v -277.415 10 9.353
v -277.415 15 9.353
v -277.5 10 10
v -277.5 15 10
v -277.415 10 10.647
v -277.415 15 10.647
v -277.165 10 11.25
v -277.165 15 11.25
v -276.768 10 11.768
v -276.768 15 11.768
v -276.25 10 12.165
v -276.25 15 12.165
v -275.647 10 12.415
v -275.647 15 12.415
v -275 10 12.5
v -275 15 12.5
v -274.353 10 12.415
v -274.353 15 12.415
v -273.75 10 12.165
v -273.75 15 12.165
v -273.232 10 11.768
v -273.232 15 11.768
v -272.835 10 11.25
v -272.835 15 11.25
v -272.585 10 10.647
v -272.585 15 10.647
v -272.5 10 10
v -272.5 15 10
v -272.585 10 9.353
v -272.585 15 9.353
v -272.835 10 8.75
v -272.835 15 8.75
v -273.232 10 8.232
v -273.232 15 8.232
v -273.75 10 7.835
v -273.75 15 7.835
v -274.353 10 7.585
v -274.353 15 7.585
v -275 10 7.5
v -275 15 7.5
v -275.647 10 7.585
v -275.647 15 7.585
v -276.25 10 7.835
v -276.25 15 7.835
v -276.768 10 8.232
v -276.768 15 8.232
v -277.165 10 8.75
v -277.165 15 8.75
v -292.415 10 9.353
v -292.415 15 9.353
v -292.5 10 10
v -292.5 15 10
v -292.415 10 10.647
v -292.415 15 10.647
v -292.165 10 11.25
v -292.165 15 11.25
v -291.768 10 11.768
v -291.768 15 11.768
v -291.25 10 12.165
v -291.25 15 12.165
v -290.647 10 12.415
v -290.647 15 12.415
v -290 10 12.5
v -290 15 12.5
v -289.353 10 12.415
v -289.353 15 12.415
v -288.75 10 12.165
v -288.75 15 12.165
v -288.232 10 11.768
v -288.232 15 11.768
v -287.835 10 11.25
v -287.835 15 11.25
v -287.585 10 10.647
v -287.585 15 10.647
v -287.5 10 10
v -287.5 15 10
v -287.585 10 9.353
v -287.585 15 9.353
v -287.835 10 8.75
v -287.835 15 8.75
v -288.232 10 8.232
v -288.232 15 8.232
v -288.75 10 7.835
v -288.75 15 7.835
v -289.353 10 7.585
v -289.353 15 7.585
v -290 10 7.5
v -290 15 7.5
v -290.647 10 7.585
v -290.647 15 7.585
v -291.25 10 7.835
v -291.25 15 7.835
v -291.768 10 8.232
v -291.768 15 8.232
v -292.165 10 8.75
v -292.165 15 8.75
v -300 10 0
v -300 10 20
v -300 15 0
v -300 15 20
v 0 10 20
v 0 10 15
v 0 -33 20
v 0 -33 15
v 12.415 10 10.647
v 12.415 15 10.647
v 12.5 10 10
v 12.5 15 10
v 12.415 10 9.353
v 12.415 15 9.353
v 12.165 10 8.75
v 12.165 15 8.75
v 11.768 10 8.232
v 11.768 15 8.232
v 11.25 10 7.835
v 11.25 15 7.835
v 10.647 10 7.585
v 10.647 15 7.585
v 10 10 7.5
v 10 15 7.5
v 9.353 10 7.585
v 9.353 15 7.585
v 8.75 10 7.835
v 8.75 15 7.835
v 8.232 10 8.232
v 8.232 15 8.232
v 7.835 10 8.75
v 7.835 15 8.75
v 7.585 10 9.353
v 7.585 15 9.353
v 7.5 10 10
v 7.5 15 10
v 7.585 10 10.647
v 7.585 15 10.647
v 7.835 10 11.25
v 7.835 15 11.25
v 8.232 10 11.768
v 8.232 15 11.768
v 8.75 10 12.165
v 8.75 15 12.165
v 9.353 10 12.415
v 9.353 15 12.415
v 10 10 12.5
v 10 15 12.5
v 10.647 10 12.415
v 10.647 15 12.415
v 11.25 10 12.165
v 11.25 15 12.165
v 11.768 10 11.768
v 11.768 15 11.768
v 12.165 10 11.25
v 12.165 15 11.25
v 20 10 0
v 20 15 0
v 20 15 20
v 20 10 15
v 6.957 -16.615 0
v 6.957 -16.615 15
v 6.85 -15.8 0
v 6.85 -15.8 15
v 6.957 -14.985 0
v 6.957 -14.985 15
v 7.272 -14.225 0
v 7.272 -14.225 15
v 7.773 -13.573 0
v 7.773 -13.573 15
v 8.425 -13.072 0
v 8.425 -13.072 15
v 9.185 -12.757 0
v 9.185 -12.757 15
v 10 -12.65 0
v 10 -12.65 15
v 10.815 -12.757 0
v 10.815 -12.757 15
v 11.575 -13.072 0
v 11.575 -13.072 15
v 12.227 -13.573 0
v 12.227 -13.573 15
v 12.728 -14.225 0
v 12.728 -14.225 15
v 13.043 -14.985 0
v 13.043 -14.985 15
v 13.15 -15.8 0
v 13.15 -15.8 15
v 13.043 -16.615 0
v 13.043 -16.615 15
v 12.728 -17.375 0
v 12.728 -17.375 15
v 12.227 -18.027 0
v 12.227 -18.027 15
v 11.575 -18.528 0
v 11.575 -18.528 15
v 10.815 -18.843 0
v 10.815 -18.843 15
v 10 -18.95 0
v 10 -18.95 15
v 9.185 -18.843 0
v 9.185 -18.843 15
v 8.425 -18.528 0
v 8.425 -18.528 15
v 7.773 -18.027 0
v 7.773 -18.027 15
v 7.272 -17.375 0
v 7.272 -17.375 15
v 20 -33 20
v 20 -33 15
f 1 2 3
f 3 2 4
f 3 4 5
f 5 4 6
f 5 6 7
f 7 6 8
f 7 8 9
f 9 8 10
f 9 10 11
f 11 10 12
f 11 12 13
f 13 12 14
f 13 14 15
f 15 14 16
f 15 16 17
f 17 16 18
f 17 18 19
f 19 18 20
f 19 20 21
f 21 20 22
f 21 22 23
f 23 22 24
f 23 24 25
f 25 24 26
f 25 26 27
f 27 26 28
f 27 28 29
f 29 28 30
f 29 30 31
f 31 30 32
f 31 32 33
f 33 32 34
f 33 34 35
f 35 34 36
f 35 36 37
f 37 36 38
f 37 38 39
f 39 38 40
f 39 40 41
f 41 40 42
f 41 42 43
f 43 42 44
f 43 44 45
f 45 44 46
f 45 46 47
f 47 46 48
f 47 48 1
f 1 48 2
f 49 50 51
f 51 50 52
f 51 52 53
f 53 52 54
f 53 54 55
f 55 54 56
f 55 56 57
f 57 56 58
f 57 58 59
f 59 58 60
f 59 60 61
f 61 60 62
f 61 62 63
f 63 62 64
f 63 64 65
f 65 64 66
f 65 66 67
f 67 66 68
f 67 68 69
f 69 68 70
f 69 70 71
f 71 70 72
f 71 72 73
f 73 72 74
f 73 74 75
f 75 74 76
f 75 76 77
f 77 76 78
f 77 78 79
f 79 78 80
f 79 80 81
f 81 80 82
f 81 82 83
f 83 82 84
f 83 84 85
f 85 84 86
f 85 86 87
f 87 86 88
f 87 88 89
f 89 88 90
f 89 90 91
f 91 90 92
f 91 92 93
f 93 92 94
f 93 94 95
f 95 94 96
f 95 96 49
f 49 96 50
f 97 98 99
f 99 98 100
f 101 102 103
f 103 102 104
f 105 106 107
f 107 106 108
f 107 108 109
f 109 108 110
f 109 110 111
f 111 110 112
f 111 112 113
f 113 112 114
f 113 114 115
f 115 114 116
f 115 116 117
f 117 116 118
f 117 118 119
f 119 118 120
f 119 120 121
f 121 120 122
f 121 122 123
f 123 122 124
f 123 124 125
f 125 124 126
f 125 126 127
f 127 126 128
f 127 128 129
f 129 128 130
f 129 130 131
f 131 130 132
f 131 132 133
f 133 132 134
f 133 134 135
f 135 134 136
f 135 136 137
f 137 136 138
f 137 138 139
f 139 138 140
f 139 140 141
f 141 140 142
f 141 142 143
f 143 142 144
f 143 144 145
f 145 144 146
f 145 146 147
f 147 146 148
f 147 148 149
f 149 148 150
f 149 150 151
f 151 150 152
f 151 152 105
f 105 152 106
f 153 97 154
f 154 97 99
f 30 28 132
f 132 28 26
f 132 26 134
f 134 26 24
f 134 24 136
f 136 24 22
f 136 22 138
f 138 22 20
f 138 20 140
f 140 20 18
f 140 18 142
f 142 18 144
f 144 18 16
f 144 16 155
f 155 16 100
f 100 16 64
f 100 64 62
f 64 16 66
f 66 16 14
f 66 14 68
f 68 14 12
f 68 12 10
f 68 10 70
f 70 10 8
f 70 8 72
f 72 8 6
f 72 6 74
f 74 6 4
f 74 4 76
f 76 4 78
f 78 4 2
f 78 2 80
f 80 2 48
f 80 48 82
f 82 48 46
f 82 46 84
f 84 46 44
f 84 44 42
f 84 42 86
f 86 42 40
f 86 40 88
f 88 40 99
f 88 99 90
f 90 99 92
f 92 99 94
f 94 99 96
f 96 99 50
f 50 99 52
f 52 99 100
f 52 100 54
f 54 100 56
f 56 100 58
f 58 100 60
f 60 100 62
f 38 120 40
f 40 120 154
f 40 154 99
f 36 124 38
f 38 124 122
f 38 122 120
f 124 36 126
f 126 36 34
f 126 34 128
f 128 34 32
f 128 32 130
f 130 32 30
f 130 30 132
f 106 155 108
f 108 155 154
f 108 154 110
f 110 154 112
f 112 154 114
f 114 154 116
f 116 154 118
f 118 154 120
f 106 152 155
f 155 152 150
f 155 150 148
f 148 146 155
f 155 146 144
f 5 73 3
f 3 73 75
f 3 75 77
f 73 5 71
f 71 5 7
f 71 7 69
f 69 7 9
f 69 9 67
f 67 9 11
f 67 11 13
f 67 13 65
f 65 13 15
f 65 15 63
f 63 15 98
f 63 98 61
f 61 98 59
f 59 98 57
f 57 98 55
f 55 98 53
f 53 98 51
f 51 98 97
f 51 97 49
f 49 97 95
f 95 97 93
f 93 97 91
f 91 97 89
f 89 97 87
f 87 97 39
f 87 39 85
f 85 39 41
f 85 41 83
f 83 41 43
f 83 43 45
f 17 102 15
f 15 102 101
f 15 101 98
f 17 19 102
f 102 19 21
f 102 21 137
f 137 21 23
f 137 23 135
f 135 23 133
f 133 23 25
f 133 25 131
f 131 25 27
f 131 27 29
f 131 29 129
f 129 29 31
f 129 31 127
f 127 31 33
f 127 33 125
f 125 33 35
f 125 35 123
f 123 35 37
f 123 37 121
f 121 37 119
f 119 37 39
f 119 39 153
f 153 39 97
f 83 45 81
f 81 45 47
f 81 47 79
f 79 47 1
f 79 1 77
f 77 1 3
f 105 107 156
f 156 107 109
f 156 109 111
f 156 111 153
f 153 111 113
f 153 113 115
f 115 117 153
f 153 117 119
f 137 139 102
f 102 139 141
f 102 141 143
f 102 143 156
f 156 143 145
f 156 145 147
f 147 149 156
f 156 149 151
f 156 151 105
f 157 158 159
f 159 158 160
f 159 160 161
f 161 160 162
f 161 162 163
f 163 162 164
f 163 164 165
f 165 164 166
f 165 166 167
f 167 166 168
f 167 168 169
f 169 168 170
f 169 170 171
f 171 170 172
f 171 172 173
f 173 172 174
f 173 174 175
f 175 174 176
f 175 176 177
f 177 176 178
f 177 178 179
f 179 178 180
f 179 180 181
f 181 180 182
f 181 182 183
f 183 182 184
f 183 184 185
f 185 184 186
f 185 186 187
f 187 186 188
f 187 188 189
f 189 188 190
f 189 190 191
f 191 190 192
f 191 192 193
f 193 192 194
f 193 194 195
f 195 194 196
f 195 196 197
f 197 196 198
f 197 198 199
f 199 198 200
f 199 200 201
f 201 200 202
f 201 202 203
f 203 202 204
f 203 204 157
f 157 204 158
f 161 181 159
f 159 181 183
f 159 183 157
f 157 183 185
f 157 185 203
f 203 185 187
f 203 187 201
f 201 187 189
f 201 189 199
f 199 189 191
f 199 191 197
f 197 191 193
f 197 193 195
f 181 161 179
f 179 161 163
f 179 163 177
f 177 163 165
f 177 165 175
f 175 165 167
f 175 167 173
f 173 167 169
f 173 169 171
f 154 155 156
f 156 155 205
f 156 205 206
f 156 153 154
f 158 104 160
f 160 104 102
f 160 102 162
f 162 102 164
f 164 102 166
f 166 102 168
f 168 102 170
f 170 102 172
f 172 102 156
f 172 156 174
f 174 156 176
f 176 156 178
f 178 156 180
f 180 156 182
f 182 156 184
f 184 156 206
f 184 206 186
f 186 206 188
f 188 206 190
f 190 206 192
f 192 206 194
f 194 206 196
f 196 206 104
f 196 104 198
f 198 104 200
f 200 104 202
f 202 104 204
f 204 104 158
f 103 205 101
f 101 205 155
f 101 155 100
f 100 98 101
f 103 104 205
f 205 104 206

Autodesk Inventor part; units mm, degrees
ref_plane "Plano de trabajo1" through (0, 10, 0) normal (0, 1, 0) x (1, 0, 0)
sketch "Boceto3" plane through (0, 10, 0) normal (0, 1, 0) x (1, 0, 0)
  line L0 (20, -20) -> (0, -20) projected
  line L1 (0, 0) -> (20, 0) projected
  line L2 (0, -20) -> (20, -20)
  line L3 (20, -20) -> (20, 0)
  line L4 (20, 0) -> (0, 0)
  line L5 (0, 0) -> (0, -20)
extrude "Extrusión3" add sketch "Boceto3" along normal blind 5
ref_plane "Plano de trabajo4" through (0, -3, 0) normal (0, -1, 0) x (1, 0, 0)
sketch "Boceto8" plane through (0, -3, 0) normal (0, -1, 0) x (1, 0, 0)
  line L0 (0, 0) -> (0, 20) projected
  line L1 (0, 20) -> (20, 20) projected
  line L2 (0, 15) -> (20, 15)
  line L3 (20, 15) -> (20, 20)
  line L4 (20, 20) -> (0, 20)
  line L5 (0, 20) -> (0, 15)
  dimension "d25" = 5
extrude "Extrusión8" add sketch "Boceto8" along normal blind 30
ref_plane "Plano de trabajo5" through (20, -33, 15) normal (0, 0, -1) x (-1, 0, 0)
sketch "Boceto10" plane through (20, -33, 15) normal (0, 0, -1) x (-1, 0, 0)
  circle A0 centre (10, 17.2) radius 3.15
  line L0 (0, 33) -> (20, 33) projected
  line L1 (0, 32) -> (0, 0) projected
  point P0 (15.75, 33)
  point P1 (10, 33)
  dimension "d35" = 6.3
  dimension "d36" = 15.8
  dimension "d37" = 10
extrude "Extrusión9" add sketch "Boceto10" along normal blind 15
ref_plane "Plano de trabajo2" through (20, 10, 20) normal (1, 0, 0) x (0, 0, -1)
sketch "Boceto13" plane through (0, -3, 0) normal (0, 1, 0) x (1, 0, 0)
  line L0 (0, -20) -> (0, -15) projected
  line L1 (20, -15) -> (20, -20) projected
  line L2 (0, -15) -> (20, -15)
  line L3 (20, -15) -> (20, -20)
  line L4 (20, -20) -> (0, -20)
  line L5 (0, -20) -> (0, -15)
  point P0 (0, 0)
extrude "Extrusión12" add sketch "Boceto13" along normal blind 13
sketch "Boceto15" plane through (0, 15, 0) normal (0, 1, 0) x (1, 0, 0)
  circle A0 centre (10, -10) radius 2.5
  line L0 (0, 0) -> (0, -20) projected
  line L1 (0, -20) -> (20, -20) projected
  point P0 (320, -20)
  dimension "d58" = 5
  dimension "d59" = 10
  dimension "d60" = 10
extrude "Extrusión14" cut sketch "Boceto15" against normal blind 5
sketch "Boceto16" plane through (0, 10, 0) normal (-1, 0, 0) x (0, 0, 1)
  line L0 (20, 5) -> (0, 5) projected
  line L1 (20, 5) -> (20, -43) projected
  line L2 (0, 5) -> (20, 5)
  line L3 (20, 5) -> (20, 0)
  line L4 (20, 0) -> (0, 0)
  line L5 (0, 0) -> (0, 5)
  point P0 (0, -10)
  dimension "d63" = 5
extrude "Extrusión15" add sketch "Boceto16" along normal blind 300
sketch "Boceto18" plane through (0, 15, 0) normal (0, 1, 0) x (1, 0, 0)
  circle A0 centre (-290, -10) radius 2.5
  line L0 (20, -20) -> (-300, -20) projected
  line L1 (-300, -20) -> (-300, 0) projected
  point P0 (0, 0)
  dimension "d66" = 5
  dimension "d67" = 10
  dimension "d68" = 10
extrude "Extrusión16" cut sketch "Boceto18" against normal blind 300
sketch "Boceto19" plane through (0, 15, 0) normal (0, 1, 0) x (1, 0, 0)
  circle A0 centre (-275, -10) radius 2.5
  circle A1 centre (-290, -10) radius 2.5 projected
  point P0 (0, 0)
  dimension "d71" = 5
  dimension "d72" = 0
  dimension "d73" = 15
extrude "Extrusión17" cut sketch "Boceto19" against normal blind 10 contours A0
thread "Rosca4" size "M5x0.8" class "6H" standard "ANSI Metric M Profile" full length
thread "Rosca5" size "M5x0.8" class "6H" standard "ANSI Metric M Profile" full length
thread "Rosca6" size "M5x0.8" class "6H" standard "ANSI Metric M Profile" full length
properties part number "Ejes Base - C15_3DPrint"
